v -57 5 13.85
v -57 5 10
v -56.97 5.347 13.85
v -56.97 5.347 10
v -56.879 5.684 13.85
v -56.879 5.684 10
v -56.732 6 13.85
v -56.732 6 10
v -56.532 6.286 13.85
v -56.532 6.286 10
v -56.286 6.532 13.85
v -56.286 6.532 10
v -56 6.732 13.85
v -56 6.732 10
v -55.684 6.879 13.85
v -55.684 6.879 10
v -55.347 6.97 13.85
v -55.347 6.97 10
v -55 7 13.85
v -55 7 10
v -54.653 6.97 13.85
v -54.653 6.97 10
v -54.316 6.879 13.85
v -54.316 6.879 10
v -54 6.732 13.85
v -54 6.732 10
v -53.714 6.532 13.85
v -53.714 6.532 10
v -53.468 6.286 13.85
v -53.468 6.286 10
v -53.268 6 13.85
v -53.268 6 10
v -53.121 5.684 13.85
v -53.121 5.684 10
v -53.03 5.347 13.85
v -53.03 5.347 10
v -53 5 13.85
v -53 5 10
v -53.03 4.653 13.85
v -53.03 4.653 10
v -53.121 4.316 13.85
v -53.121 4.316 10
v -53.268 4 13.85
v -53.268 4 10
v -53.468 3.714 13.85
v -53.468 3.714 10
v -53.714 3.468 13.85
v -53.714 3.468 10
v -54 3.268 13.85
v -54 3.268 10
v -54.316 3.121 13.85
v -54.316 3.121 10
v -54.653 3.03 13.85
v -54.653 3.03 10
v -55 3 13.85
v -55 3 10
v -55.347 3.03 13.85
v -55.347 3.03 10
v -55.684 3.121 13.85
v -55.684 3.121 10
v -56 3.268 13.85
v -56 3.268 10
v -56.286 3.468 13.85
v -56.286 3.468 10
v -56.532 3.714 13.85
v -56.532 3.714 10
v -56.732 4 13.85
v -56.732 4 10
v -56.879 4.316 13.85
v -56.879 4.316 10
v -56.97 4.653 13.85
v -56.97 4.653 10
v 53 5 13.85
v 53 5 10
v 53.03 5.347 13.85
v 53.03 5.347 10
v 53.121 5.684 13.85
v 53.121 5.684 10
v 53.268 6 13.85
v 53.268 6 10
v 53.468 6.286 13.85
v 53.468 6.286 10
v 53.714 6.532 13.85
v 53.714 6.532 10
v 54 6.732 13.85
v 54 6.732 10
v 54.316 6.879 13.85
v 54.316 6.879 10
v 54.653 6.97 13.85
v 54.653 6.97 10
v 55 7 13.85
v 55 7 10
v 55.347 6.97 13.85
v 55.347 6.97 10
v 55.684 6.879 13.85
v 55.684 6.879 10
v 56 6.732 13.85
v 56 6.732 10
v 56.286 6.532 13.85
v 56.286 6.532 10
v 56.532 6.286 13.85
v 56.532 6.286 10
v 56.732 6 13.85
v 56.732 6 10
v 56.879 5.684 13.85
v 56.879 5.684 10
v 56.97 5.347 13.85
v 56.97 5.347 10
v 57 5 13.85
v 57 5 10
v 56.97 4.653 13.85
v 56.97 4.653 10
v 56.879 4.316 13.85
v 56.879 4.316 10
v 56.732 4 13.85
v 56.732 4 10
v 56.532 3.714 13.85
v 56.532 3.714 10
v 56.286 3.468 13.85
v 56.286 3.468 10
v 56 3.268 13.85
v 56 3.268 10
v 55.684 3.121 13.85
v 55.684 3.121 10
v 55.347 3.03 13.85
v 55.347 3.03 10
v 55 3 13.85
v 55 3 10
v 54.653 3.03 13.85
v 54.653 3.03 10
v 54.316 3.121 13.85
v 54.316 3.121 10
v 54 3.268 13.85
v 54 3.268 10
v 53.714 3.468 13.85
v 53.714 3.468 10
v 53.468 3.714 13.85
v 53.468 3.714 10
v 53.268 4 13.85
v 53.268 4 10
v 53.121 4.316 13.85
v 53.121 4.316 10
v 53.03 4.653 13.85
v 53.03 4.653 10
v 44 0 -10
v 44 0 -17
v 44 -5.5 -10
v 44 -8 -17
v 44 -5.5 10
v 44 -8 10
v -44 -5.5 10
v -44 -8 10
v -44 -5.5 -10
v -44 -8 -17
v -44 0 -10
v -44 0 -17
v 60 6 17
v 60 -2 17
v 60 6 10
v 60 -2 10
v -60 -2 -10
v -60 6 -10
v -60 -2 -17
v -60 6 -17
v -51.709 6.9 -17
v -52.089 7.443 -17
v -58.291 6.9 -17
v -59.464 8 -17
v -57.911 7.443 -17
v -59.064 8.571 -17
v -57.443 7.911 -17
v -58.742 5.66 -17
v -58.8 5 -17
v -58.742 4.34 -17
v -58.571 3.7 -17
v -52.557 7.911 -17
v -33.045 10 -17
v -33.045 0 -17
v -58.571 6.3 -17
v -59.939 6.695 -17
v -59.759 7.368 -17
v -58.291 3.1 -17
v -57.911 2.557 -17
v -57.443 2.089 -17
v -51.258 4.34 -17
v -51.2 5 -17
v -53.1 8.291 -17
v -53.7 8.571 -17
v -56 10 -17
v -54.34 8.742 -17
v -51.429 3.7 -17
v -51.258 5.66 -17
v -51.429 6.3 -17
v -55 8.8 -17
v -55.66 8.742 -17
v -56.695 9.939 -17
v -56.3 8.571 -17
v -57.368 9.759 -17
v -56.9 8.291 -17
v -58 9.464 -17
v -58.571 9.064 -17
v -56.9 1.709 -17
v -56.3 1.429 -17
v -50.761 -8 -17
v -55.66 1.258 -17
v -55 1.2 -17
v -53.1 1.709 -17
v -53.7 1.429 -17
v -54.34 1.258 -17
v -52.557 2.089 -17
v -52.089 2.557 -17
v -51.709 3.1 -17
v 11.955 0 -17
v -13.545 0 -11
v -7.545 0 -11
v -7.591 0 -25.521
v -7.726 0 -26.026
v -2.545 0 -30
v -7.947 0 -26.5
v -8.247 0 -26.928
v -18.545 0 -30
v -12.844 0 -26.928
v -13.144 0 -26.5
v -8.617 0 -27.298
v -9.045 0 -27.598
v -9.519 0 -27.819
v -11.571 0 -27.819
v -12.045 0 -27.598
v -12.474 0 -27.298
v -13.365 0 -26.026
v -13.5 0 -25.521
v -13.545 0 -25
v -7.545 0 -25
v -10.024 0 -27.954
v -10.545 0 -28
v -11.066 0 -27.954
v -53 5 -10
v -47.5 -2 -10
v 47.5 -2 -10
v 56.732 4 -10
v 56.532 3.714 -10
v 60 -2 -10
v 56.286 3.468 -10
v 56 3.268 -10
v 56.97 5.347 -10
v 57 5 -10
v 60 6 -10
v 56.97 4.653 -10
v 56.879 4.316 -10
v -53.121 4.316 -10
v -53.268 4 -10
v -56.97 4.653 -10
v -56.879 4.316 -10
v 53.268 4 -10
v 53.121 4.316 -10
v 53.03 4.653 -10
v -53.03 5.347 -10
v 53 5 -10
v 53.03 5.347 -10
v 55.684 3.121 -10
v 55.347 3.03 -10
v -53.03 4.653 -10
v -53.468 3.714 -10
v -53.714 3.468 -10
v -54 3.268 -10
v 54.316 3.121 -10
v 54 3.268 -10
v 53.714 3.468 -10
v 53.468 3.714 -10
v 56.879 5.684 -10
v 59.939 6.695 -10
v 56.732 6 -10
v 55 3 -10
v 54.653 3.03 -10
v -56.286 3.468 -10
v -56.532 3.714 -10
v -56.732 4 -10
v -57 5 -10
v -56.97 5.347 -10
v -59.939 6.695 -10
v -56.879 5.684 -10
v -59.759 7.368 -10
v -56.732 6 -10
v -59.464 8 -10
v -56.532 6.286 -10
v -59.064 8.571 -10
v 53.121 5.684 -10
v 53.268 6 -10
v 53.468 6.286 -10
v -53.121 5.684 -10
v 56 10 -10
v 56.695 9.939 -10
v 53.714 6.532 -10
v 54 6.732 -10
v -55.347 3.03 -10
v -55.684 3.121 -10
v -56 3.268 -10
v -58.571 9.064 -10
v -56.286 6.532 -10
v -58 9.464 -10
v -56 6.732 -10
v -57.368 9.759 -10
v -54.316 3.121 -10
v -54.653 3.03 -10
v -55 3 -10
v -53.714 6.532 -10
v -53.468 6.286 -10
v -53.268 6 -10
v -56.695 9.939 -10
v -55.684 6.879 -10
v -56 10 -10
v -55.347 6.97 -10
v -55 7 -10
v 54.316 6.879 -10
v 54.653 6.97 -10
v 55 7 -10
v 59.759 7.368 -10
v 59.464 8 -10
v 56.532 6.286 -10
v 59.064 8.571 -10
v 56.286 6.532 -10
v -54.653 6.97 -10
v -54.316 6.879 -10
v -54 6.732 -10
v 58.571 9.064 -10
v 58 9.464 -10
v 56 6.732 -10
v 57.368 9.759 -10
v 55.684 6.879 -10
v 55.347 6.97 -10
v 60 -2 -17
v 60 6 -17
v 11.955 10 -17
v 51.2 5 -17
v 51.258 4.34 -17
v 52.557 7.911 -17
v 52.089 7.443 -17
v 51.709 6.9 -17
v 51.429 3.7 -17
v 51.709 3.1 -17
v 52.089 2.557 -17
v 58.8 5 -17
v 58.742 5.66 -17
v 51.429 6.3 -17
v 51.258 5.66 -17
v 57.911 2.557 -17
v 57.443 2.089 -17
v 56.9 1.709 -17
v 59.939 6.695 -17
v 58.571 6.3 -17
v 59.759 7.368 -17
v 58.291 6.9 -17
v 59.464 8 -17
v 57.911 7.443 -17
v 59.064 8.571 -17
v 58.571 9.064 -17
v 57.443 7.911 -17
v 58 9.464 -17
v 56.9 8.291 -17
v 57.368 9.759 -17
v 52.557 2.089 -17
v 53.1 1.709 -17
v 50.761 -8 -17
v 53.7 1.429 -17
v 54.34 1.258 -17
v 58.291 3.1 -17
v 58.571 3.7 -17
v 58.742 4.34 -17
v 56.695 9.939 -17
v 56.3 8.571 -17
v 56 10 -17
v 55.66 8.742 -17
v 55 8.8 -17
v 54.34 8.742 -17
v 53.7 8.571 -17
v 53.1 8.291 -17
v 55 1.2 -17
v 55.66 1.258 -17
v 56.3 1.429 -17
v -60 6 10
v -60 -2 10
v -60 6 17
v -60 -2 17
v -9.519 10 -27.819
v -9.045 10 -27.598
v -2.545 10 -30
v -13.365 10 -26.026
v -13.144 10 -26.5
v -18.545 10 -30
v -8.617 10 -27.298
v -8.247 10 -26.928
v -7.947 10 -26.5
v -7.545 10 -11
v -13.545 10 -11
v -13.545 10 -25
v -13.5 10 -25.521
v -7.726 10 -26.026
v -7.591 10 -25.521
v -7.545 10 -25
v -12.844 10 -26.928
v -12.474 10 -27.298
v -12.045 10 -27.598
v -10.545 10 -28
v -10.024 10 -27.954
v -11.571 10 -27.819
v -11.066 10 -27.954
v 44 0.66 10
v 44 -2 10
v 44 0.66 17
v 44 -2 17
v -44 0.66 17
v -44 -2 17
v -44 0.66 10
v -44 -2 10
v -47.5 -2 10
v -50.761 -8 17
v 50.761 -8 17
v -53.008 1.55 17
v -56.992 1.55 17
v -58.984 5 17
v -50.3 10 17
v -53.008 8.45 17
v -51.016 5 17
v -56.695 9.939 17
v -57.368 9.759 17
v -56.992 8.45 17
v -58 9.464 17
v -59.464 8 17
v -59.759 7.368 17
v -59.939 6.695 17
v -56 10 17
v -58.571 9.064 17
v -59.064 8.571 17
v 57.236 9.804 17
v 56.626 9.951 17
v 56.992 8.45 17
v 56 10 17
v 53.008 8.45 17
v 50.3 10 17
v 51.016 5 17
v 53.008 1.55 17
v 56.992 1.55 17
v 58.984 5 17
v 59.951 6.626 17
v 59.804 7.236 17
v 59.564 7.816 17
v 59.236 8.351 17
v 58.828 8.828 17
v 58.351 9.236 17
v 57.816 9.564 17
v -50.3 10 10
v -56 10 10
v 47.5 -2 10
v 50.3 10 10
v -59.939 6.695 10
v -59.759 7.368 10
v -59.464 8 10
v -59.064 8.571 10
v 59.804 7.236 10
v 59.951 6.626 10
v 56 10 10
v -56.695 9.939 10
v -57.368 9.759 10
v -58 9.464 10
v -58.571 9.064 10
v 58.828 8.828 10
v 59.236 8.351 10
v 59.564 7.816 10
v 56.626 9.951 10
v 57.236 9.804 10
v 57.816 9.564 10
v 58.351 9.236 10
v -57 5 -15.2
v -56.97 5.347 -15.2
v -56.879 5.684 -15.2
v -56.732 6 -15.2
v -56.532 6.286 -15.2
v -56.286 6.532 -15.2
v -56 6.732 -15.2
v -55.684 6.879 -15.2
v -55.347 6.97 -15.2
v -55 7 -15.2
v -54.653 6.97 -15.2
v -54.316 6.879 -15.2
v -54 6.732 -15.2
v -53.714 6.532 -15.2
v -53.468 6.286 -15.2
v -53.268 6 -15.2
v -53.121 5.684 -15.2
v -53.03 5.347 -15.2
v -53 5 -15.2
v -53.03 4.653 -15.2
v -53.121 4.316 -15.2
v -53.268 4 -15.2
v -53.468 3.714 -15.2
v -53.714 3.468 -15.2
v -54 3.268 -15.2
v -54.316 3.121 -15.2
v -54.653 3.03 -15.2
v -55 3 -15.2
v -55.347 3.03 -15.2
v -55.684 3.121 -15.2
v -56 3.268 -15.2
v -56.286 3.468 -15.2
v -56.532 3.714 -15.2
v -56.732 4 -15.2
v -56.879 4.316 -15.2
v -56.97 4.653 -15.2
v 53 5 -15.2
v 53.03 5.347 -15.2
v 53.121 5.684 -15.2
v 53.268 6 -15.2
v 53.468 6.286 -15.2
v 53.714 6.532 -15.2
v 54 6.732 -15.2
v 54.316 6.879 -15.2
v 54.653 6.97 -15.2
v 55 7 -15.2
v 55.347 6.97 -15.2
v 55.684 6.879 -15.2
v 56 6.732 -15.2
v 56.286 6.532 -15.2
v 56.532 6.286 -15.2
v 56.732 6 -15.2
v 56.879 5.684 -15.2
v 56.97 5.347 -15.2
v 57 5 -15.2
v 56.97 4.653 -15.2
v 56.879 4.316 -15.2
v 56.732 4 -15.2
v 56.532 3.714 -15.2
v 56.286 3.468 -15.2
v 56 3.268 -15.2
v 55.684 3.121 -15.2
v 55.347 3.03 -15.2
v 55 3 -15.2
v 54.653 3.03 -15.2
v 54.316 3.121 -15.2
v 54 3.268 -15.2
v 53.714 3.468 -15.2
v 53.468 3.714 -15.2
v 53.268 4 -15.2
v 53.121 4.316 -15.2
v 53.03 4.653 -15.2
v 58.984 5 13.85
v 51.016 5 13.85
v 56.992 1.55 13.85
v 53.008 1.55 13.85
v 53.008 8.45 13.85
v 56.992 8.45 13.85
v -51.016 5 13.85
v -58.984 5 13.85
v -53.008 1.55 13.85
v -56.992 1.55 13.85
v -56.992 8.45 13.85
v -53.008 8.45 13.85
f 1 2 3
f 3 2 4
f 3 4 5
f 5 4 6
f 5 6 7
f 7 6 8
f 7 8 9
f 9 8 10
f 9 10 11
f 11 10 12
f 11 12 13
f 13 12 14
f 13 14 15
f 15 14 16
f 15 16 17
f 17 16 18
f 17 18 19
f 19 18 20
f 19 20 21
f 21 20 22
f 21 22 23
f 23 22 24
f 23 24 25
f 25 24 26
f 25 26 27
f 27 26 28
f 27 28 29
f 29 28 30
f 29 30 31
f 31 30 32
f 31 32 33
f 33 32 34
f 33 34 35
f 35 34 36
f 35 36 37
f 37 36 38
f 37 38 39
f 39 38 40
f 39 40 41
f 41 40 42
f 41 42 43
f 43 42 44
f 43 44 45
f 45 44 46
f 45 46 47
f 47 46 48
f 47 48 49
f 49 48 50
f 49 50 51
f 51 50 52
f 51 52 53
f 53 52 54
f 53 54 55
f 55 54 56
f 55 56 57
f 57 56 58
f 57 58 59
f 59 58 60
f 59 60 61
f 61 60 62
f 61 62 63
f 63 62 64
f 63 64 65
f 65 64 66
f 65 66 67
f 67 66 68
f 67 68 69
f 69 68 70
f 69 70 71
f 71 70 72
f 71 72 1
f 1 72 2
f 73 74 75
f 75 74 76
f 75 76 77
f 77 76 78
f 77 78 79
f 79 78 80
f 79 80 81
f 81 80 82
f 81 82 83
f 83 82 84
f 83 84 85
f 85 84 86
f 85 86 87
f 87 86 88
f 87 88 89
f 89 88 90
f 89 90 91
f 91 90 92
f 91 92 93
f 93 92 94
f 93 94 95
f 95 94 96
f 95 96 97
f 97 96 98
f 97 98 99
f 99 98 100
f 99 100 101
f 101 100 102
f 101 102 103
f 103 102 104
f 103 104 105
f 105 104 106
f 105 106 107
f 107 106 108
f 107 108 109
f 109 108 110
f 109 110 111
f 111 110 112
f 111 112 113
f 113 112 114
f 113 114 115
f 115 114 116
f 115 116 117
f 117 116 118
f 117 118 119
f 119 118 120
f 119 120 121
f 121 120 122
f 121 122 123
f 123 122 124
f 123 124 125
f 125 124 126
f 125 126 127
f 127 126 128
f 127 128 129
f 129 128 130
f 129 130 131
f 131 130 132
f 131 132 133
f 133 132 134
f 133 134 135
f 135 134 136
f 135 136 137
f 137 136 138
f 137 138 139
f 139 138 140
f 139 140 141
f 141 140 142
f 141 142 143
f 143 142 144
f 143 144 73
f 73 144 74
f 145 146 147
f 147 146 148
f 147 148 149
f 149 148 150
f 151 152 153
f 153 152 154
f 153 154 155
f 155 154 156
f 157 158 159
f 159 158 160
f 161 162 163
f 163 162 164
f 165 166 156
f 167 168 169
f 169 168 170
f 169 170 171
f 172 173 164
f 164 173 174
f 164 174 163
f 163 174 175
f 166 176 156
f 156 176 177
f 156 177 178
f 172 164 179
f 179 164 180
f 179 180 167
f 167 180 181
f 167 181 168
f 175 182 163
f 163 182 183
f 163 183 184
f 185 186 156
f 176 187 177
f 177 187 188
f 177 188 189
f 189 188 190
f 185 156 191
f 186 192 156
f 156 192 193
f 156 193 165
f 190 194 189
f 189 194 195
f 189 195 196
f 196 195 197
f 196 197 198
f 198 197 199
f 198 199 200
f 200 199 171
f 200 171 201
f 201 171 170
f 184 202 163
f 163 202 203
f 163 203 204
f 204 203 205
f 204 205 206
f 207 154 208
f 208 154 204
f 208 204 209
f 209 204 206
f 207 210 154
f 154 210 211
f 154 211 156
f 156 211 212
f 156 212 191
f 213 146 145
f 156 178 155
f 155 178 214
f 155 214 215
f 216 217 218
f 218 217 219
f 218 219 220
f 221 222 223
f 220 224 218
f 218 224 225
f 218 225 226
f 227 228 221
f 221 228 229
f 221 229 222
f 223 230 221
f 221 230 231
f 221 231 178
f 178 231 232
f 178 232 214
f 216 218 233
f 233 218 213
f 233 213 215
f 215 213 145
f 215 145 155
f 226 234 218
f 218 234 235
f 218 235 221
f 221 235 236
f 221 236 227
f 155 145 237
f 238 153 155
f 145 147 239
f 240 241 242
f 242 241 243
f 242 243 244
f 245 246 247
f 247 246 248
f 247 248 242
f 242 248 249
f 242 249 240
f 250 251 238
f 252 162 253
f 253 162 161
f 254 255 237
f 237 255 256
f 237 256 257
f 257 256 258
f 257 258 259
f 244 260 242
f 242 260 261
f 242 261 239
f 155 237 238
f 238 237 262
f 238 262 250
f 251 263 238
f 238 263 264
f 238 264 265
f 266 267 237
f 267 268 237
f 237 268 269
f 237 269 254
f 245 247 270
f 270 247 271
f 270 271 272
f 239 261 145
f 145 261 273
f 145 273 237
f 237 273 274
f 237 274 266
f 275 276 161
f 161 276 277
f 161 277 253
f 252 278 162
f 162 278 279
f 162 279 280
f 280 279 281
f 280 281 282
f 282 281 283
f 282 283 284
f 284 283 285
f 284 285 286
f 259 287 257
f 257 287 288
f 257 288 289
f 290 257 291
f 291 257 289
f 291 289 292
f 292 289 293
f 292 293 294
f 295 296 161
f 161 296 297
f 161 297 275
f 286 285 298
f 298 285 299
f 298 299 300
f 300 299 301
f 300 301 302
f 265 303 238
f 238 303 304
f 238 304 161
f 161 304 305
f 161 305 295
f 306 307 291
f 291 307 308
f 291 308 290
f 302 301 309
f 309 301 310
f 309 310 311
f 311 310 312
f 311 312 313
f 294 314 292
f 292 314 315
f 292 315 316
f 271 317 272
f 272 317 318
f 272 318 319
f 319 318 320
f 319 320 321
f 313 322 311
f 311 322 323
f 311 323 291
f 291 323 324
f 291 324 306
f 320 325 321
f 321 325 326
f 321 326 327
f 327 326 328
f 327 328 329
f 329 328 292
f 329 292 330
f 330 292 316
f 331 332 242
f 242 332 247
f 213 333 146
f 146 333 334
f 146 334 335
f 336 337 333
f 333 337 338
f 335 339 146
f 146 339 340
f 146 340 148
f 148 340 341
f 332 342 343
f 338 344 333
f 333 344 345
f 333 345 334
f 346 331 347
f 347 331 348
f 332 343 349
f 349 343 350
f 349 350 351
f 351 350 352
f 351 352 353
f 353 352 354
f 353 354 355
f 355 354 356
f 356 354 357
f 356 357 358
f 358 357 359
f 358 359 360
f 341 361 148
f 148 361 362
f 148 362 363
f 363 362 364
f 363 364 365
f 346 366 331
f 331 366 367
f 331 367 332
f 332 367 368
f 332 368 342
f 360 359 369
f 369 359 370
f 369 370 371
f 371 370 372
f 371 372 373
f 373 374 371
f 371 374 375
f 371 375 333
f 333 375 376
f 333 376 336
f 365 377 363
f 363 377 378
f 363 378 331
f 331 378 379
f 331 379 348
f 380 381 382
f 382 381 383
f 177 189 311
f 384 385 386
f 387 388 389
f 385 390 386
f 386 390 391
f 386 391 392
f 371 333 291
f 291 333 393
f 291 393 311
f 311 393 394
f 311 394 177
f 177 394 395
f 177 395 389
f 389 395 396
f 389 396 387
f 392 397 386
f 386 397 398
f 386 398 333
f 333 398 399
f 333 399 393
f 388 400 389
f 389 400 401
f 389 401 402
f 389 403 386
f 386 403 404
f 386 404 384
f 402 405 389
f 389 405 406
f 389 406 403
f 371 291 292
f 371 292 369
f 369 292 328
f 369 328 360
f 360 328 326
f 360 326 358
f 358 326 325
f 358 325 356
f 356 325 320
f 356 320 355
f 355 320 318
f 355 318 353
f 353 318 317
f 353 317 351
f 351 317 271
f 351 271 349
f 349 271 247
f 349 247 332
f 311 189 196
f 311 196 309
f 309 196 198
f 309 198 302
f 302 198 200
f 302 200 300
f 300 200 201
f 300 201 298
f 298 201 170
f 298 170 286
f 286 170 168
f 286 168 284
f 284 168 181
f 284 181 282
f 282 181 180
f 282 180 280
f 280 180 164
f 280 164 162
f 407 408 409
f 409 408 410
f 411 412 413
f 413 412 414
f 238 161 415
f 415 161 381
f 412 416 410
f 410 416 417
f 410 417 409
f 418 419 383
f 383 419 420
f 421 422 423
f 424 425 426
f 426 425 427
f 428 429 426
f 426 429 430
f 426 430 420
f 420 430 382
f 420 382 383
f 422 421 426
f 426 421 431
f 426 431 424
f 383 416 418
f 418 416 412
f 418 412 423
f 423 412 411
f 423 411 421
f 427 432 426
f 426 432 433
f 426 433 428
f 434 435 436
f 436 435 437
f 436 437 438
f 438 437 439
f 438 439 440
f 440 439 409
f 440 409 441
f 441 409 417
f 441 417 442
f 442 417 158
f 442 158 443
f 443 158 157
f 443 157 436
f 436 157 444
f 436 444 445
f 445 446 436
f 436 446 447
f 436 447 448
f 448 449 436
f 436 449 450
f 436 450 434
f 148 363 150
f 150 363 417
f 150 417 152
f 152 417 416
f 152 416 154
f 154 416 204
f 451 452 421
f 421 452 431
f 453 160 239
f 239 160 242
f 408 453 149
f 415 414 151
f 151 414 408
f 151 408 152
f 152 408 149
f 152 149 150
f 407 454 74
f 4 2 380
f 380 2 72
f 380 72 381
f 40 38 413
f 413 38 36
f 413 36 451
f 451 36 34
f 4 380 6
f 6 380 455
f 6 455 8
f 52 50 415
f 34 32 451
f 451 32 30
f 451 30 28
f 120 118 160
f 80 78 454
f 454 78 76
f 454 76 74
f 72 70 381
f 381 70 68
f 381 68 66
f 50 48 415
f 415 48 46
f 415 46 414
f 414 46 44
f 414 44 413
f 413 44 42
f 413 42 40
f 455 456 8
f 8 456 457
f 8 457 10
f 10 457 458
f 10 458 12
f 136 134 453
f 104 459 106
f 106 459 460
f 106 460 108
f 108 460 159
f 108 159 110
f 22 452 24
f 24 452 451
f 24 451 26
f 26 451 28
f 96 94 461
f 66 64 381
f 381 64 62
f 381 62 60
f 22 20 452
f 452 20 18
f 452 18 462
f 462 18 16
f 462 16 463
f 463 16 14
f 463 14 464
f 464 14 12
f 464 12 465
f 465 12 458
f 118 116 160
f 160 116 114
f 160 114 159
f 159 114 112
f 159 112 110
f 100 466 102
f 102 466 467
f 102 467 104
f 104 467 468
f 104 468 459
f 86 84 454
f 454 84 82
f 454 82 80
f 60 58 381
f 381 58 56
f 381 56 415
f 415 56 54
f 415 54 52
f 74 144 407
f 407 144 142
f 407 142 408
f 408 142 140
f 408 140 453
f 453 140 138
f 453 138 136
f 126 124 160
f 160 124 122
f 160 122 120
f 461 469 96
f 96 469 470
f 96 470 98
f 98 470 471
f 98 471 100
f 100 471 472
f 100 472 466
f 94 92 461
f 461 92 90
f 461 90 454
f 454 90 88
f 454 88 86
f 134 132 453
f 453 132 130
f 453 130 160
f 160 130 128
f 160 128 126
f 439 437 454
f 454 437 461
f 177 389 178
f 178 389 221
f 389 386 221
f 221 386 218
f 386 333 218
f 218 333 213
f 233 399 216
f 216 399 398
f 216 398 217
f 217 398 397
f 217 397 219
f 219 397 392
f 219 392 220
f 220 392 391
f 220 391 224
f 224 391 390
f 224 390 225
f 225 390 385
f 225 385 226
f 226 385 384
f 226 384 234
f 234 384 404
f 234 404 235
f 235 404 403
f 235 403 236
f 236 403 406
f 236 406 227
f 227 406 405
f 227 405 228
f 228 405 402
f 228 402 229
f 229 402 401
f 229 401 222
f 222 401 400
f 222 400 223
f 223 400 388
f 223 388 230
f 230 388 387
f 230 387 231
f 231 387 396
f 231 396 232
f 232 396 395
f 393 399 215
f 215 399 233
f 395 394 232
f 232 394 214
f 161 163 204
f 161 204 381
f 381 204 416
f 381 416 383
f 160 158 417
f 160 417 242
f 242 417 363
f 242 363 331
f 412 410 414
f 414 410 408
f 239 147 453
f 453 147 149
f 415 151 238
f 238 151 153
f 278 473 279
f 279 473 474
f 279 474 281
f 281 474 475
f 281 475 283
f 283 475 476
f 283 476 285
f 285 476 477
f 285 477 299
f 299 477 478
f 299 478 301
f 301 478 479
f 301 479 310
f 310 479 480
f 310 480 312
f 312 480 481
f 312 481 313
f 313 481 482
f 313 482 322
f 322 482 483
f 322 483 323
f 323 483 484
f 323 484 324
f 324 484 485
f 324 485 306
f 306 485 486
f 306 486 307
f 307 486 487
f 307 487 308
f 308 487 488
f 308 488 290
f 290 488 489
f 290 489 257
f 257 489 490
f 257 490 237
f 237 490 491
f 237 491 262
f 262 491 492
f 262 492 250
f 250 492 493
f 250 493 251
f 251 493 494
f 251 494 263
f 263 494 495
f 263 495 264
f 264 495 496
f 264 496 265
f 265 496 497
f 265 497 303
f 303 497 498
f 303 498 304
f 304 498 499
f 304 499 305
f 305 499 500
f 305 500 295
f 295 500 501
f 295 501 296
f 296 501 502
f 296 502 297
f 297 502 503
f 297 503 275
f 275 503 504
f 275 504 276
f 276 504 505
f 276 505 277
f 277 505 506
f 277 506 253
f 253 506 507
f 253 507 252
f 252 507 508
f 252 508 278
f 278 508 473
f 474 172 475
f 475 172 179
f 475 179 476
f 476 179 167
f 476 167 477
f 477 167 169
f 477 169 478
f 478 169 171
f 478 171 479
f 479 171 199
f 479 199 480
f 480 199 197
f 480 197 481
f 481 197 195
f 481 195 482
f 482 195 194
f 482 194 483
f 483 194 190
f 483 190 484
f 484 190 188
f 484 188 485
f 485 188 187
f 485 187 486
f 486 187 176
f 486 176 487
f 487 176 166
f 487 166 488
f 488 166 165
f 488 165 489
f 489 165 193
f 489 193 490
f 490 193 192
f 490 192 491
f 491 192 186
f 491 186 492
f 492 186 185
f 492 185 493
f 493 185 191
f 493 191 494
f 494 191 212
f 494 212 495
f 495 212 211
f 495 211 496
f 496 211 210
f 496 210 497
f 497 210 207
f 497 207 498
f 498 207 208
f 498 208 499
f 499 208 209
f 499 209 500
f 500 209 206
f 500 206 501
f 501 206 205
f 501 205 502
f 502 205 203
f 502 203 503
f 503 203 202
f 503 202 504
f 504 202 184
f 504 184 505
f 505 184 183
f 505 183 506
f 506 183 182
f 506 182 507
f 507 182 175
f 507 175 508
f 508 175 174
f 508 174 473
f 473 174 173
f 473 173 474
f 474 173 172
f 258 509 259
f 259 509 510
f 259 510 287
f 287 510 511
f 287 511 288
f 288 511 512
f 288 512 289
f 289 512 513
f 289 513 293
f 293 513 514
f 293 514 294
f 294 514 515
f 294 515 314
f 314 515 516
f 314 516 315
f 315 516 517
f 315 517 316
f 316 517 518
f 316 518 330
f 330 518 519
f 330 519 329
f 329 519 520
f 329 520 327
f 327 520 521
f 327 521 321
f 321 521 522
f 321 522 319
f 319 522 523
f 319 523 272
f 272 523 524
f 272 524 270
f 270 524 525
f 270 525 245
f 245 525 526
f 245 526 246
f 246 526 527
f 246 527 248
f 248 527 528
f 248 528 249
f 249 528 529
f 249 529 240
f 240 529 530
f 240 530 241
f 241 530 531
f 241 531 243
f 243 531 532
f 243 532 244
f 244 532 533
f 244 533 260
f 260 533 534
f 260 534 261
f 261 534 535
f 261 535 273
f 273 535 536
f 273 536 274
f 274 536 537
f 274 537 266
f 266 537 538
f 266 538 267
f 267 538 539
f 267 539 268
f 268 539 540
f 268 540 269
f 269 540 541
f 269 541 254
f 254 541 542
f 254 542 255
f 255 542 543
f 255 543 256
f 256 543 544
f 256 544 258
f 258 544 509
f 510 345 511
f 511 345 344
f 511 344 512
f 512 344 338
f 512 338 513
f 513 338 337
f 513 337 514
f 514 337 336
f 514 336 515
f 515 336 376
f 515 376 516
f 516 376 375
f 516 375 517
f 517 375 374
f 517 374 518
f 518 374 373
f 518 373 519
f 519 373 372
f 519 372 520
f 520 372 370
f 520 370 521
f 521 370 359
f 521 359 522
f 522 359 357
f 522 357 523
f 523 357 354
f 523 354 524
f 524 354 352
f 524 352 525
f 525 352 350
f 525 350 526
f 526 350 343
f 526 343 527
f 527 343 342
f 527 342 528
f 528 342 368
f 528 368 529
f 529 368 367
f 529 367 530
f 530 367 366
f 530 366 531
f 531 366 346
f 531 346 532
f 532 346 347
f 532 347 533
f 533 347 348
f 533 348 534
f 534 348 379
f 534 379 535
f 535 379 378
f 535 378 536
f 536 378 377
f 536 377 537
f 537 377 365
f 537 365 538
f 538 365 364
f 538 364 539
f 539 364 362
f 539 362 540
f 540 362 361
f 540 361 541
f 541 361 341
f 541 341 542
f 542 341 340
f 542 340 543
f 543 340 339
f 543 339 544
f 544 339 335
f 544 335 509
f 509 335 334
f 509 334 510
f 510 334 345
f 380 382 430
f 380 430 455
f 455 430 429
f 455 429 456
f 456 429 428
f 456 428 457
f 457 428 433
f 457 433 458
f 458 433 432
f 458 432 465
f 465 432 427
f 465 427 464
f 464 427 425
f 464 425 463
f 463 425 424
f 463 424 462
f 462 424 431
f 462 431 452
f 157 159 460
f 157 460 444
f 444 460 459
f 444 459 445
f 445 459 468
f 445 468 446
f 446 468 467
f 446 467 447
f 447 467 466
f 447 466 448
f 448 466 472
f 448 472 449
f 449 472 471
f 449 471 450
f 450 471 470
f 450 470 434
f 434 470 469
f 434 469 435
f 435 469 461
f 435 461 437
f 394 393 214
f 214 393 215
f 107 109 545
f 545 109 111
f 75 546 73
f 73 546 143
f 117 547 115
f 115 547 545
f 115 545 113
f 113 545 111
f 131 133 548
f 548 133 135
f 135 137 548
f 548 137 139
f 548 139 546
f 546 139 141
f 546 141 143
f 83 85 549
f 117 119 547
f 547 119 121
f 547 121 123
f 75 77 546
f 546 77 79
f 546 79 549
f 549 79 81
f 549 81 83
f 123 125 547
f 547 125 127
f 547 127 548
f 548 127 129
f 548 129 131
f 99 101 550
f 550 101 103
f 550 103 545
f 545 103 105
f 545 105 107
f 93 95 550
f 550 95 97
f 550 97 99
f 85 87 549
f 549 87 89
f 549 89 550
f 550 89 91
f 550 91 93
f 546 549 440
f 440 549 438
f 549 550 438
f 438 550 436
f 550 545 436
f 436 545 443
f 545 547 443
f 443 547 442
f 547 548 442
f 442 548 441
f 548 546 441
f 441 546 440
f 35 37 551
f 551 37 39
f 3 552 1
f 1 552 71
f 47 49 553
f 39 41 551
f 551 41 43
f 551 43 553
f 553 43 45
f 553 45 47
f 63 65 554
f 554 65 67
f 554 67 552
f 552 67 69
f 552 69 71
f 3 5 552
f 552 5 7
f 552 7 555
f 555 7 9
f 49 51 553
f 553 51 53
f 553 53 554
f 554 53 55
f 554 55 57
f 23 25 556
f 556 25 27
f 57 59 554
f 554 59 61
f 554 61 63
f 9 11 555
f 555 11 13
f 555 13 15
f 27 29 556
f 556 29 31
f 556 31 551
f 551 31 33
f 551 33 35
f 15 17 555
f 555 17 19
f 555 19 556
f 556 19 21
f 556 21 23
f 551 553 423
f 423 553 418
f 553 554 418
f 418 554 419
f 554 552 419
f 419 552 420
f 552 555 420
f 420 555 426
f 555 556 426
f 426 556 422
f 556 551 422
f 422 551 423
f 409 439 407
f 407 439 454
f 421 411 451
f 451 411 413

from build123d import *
from OCP.BRepFilletAPI import BRepFilletAPI_MakeChamfer

# Parameters (mm, degrees)
BOSS_EXTRUDE1_DEPTH                             = 10
FILLET4_R                                       = 4
SKETCH8_W                                       = 16
SKETCH8_H                                       = 7
BOSS_EXTRUDE3_DEPTH                             = 2
SKETCH9_W                                       = 16
SKETCH9_H                                       = 34
BOSS_EXTRUDE4_DEPTH                             = 6
BOSS_EXTRUDE5_DEPTH                             = 10
CUT_EXTRUDE3_DEPTH                              = 10
CHAMFER1_SIZE                                   = 6
CHAMFER1_SIZE_2                                 = 9.239189783
SKETCH13_W                                      = 7
SKETCH13_H                                      = 6
BOSS_EXTRUDE6_DEPTH                             = 88
CHAMFER2_SIZE                                   = 3.5
CSK_FOR_M4_FLAT_HEAD_MACHINE_SCREW1_D           = 4
CSK_FOR_M4_FLAT_HEAD_MACHINE_SCREW1_DEPTH       = 53.798278762
CSK_FOR_M4_FLAT_HEAD_MACHINE_SCREW1_CSINK_D     = 7.6
CSK_FOR_M4_FLAT_HEAD_MACHINE_SCREW1_CSINK_ANGLE = 90
CSK_FOR_M4_FLAT_HEAD_MACHINE_SCREW1_TIP         = 1.201721238
FILLET5_R                                       = 4
SKETCH17_W                                      = 6
SKETCH17_H                                      = 1
BOSS_EXTRUDE7_DEPTH                             = 10
CUT_EXTRUDE4_DEPTH                              = 3.15
CHAMFER3_SIZE                                   = 6.3
CHAMFER3_SIZE2                                  = 9.340134102


# Some blends are built 0.0001 mm under size
with BuildPart() as part:
    # Sketch1 → Boss-Extrude1 (new body)
    with BuildSketch(Plane(origin=(0, 0, 0), x_dir=(1, 0, 0), z_dir=(0, 1, 0))):
        Polygon((0, 17), (-60, 17), (-60, 10), (-43.720595315, 10), (-36.720595315, 10), (-28, 10), (-20, 10), (0, 10), align=None)
        Polygon((60, 17), (0, 17), (0, 10), (20, 10), (28, 10), (36.720595315, 10), (43.720595315, 10), (60, 10), align=None)
        Polygon((60, -10), (51, -10), (44, -10), (44, -17), (60, -17), align=None)
        Polygon((-44, -10), (-51, -10), (-60, -10), (-60, -17), (-44, -17), align=None)
    extrude(amount=BOSS_EXTRUDE1_DEPTH)

    # Fillet4
    fillet4_edges = [part.edges().sort_by_distance(p)[0] for p in [
        (60, 10, -13.5),
        (-60, 10, -13.5),
    ]]
    fillet(fillet4_edges, radius=FILLET4_R)

    # Sketch8 → Boss-Extrude3 (add)
    with BuildSketch(Plane.XZ):
        with Locations((-52, 13.5)):
            Rectangle(SKETCH8_W, SKETCH8_H)
        with Locations((52, 13.5)):
            Rectangle(SKETCH8_W, SKETCH8_H)
        with Locations((52, -13.5)):
            Rectangle(SKETCH8_W, SKETCH8_H)
        with Locations((-52, -13.5)):
            Rectangle(SKETCH8_W, SKETCH8_H)
    extrude(amount=BOSS_EXTRUDE3_DEPTH)

    # Sketch9 → Boss-Extrude4 (add)
    with BuildSketch(Plane.XZ.offset(2)):
        with Locations((-52, 0)):
            Rectangle(SKETCH9_W, SKETCH9_H)
        with Locations((52, 0)):
            Rectangle(SKETCH9_W, SKETCH9_H)
    extrude(amount=BOSS_EXTRUDE4_DEPTH)

    # Sketch10 → Boss-Extrude5 (add)
    with BuildSketch(Plane(origin=(0, 10, 0), x_dir=(1, 0, 0), z_dir=(0, 1, 0))):
        Polygon((-33.045425071, 17), (-18.545425071, 30), (-2.545425071, 30), (11.954574929, 17), align=None)
    extrude(amount=-BOSS_EXTRUDE5_DEPTH)

    # Sketch11 → Cut-Extrude3 (cut)
    with BuildSketch(Plane(origin=(0, 10, 0), x_dir=(1, 0, 0), z_dir=(0, 1, 0))):
        with BuildLine():
            Line((-7.545425071, 25), (-7.545425071, 11))
            ThreePointArc((-7.545425071, 11), (-10.545425071, 8), (-13.545425071, 11))
            Line((-13.545425071, 11), (-13.545425071, 25))
            ThreePointArc((-13.545425071, 25), (-10.545425071, 28), (-7.545425071, 25))
        make_face()
    extrude(amount=-CUT_EXTRUDE3_DEPTH, mode=Mode.SUBTRACT)

    # Chamfer1
    chamfer1_edges_1 = [part.edges().sort_by_distance(p)[0] for p in [
        (-60, -8, 0),
    ]]
    chamfer1_side_1 = [part.faces().sort_by_distance(p)[0] for p in [
        (-60, -7.88, 0),
    ]]
    chamfer1_edges_2 = [part.edges().sort_by_distance(p)[0] for p in [
        (60, -8, 0),
    ]]
    chamfer1_side_2 = [part.faces().sort_by_distance(p)[0] for p in [
        (60, -7.88, 0),
    ]]
    chamfer1 = BRepFilletAPI_MakeChamfer(part.part.solid().wrapped)
    for e in chamfer1_edges_1:
        chamfer1.Add(CHAMFER1_SIZE - 0.0001, CHAMFER1_SIZE_2 - 0.0001, e.wrapped, chamfer1_side_1[0].wrapped)
    for e in chamfer1_edges_2:
        chamfer1.Add(CHAMFER1_SIZE - 0.0001, CHAMFER1_SIZE_2 - 0.0001, e.wrapped, chamfer1_side_2[0].wrapped)
    add(Compound.cast(chamfer1.Shape()), mode=Mode.REPLACE)  # a hair under: the kernel refuses the full size

    # Sketch13 → Boss-Extrude6 (add)
    with BuildSketch(Plane.ZY.offset(-44)):
        with Locations((13.5, -5)):
            Rectangle(SKETCH13_W, SKETCH13_H)
    extrude(amount=BOSS_EXTRUDE6_DEPTH)

    # Chamfer2
    # the kernel refuses this chamfer: 3.5 mm, written as the material it takes off along each edge
    with BuildSketch(Plane(origin=(-44, -2, -10), x_dir=(-0.9996219169112968, 0.027495876610586372, 0), z_dir=(0, 0, 1)), Plane(origin=(44, -2, 10), x_dir=(0.9996219169112968, 0.027495876610586188, 0), z_dir=(0, 0, -1))) as chamfer2_piece_1:
        Polygon((CHAMFER2_SIZE * 0.999621916911, CHAMFER2_SIZE * 0.0274958766106), (-CHAMFER2_SIZE * 0.0274958766106, CHAMFER2_SIZE * 0.999621916911), (0, 0), align=None)
    extrude(amount=20, mode=Mode.SUBTRACT)

    # CSK for M4 Flat Head Machine Screw1
    with Locations(Plane(origin=(0, 0, -17), x_dir=(-1, 0, 0), z_dir=(0, 0, -1))):
        with Locations((-55, 5), (55, 5)):
            CounterSinkHole(CSK_FOR_M4_FLAT_HEAD_MACHINE_SCREW1_D / 2, CSK_FOR_M4_FLAT_HEAD_MACHINE_SCREW1_CSINK_D / 2, depth=CSK_FOR_M4_FLAT_HEAD_MACHINE_SCREW1_DEPTH, counter_sink_angle=CSK_FOR_M4_FLAT_HEAD_MACHINE_SCREW1_CSINK_ANGLE)
            with Locations((0, 0, -(CSK_FOR_M4_FLAT_HEAD_MACHINE_SCREW1_DEPTH + CSK_FOR_M4_FLAT_HEAD_MACHINE_SCREW1_TIP / 2))):  # 118° drill point
                Cone(0, CSK_FOR_M4_FLAT_HEAD_MACHINE_SCREW1_D / 2, CSK_FOR_M4_FLAT_HEAD_MACHINE_SCREW1_TIP, mode=Mode.SUBTRACT)

    # Fillet5
    fillet5_edges = [part.edges().sort_by_distance(p)[0] for p in [
        (-60, 10, 13.5),
        (60, 10, 13.5),
    ]]
    fillet(fillet5_edges, radius=FILLET5_R)

    # Sketch17 → Boss-Extrude7 (add)
    with BuildSketch(Plane(origin=(0, 10, 0), x_dir=(1, 0, 0), z_dir=(0, 1, 0))):
        with Locations((-10.545425071, 10.5)):
            Rectangle(SKETCH17_W, SKETCH17_H)
    extrude(amount=-BOSS_EXTRUDE7_DEPTH)

    # Sketch18 → Cut-Extrude4 (cut)
    with BuildSketch(Plane.XY.offset(17)):
        Polygon((51.016283143, 5), (53.008141571, 1.55), (56.991858429, 1.55), (58.983716857, 5), (56.991858429, 8.45), (53.008141571, 8.45), align=None)
        Polygon((-51.016283143, 5), (-53.008141571, 8.45), (-56.991858429, 8.45), (-58.983716857, 5), (-56.991858429, 1.55), (-53.008141571, 1.55), align=None)
    extrude(amount=-CUT_EXTRUDE4_DEPTH, mode=Mode.SUBTRACT)

    # Chamfer3: one chamfer whose edges measure the first distance from different faces: ONE call of the kernel's chamfer builder (chamfer() names one face for all edges)
    chamfer3_edges_1 = [part.edges().sort_by_distance(p)[0] for p in [
        (-44, 10, 13.5),
    ]]
    chamfer3_side_1 = [part.faces().sort_by_distance(p)[0] for p in [
        (-50, 10, 13.5),
    ]]
    chamfer3_edges_2 = [part.edges().sort_by_distance(p)[0] for p in [
        (44, 10, 13.5),
    ]]
    chamfer3_side_2 = [part.faces().sort_by_distance(p)[0] for p in [
        (50, 10, 13.5),
    ]]
    chamfer3 = BRepFilletAPI_MakeChamfer(part.part.solid().wrapped)
    for e in chamfer3_edges_1:
        chamfer3.Add(CHAMFER3_SIZE, CHAMFER3_SIZE2, e.wrapped, chamfer3_side_1[0].wrapped)  # the first distance lies on this face
    for e in chamfer3_edges_2:
        chamfer3.Add(CHAMFER3_SIZE, CHAMFER3_SIZE2, e.wrapped, chamfer3_side_2[0].wrapped)  # the first distance lies on this face
    add(Compound.cast(chamfer3.Shape()), mode=Mode.REPLACE)


solid = part.part
